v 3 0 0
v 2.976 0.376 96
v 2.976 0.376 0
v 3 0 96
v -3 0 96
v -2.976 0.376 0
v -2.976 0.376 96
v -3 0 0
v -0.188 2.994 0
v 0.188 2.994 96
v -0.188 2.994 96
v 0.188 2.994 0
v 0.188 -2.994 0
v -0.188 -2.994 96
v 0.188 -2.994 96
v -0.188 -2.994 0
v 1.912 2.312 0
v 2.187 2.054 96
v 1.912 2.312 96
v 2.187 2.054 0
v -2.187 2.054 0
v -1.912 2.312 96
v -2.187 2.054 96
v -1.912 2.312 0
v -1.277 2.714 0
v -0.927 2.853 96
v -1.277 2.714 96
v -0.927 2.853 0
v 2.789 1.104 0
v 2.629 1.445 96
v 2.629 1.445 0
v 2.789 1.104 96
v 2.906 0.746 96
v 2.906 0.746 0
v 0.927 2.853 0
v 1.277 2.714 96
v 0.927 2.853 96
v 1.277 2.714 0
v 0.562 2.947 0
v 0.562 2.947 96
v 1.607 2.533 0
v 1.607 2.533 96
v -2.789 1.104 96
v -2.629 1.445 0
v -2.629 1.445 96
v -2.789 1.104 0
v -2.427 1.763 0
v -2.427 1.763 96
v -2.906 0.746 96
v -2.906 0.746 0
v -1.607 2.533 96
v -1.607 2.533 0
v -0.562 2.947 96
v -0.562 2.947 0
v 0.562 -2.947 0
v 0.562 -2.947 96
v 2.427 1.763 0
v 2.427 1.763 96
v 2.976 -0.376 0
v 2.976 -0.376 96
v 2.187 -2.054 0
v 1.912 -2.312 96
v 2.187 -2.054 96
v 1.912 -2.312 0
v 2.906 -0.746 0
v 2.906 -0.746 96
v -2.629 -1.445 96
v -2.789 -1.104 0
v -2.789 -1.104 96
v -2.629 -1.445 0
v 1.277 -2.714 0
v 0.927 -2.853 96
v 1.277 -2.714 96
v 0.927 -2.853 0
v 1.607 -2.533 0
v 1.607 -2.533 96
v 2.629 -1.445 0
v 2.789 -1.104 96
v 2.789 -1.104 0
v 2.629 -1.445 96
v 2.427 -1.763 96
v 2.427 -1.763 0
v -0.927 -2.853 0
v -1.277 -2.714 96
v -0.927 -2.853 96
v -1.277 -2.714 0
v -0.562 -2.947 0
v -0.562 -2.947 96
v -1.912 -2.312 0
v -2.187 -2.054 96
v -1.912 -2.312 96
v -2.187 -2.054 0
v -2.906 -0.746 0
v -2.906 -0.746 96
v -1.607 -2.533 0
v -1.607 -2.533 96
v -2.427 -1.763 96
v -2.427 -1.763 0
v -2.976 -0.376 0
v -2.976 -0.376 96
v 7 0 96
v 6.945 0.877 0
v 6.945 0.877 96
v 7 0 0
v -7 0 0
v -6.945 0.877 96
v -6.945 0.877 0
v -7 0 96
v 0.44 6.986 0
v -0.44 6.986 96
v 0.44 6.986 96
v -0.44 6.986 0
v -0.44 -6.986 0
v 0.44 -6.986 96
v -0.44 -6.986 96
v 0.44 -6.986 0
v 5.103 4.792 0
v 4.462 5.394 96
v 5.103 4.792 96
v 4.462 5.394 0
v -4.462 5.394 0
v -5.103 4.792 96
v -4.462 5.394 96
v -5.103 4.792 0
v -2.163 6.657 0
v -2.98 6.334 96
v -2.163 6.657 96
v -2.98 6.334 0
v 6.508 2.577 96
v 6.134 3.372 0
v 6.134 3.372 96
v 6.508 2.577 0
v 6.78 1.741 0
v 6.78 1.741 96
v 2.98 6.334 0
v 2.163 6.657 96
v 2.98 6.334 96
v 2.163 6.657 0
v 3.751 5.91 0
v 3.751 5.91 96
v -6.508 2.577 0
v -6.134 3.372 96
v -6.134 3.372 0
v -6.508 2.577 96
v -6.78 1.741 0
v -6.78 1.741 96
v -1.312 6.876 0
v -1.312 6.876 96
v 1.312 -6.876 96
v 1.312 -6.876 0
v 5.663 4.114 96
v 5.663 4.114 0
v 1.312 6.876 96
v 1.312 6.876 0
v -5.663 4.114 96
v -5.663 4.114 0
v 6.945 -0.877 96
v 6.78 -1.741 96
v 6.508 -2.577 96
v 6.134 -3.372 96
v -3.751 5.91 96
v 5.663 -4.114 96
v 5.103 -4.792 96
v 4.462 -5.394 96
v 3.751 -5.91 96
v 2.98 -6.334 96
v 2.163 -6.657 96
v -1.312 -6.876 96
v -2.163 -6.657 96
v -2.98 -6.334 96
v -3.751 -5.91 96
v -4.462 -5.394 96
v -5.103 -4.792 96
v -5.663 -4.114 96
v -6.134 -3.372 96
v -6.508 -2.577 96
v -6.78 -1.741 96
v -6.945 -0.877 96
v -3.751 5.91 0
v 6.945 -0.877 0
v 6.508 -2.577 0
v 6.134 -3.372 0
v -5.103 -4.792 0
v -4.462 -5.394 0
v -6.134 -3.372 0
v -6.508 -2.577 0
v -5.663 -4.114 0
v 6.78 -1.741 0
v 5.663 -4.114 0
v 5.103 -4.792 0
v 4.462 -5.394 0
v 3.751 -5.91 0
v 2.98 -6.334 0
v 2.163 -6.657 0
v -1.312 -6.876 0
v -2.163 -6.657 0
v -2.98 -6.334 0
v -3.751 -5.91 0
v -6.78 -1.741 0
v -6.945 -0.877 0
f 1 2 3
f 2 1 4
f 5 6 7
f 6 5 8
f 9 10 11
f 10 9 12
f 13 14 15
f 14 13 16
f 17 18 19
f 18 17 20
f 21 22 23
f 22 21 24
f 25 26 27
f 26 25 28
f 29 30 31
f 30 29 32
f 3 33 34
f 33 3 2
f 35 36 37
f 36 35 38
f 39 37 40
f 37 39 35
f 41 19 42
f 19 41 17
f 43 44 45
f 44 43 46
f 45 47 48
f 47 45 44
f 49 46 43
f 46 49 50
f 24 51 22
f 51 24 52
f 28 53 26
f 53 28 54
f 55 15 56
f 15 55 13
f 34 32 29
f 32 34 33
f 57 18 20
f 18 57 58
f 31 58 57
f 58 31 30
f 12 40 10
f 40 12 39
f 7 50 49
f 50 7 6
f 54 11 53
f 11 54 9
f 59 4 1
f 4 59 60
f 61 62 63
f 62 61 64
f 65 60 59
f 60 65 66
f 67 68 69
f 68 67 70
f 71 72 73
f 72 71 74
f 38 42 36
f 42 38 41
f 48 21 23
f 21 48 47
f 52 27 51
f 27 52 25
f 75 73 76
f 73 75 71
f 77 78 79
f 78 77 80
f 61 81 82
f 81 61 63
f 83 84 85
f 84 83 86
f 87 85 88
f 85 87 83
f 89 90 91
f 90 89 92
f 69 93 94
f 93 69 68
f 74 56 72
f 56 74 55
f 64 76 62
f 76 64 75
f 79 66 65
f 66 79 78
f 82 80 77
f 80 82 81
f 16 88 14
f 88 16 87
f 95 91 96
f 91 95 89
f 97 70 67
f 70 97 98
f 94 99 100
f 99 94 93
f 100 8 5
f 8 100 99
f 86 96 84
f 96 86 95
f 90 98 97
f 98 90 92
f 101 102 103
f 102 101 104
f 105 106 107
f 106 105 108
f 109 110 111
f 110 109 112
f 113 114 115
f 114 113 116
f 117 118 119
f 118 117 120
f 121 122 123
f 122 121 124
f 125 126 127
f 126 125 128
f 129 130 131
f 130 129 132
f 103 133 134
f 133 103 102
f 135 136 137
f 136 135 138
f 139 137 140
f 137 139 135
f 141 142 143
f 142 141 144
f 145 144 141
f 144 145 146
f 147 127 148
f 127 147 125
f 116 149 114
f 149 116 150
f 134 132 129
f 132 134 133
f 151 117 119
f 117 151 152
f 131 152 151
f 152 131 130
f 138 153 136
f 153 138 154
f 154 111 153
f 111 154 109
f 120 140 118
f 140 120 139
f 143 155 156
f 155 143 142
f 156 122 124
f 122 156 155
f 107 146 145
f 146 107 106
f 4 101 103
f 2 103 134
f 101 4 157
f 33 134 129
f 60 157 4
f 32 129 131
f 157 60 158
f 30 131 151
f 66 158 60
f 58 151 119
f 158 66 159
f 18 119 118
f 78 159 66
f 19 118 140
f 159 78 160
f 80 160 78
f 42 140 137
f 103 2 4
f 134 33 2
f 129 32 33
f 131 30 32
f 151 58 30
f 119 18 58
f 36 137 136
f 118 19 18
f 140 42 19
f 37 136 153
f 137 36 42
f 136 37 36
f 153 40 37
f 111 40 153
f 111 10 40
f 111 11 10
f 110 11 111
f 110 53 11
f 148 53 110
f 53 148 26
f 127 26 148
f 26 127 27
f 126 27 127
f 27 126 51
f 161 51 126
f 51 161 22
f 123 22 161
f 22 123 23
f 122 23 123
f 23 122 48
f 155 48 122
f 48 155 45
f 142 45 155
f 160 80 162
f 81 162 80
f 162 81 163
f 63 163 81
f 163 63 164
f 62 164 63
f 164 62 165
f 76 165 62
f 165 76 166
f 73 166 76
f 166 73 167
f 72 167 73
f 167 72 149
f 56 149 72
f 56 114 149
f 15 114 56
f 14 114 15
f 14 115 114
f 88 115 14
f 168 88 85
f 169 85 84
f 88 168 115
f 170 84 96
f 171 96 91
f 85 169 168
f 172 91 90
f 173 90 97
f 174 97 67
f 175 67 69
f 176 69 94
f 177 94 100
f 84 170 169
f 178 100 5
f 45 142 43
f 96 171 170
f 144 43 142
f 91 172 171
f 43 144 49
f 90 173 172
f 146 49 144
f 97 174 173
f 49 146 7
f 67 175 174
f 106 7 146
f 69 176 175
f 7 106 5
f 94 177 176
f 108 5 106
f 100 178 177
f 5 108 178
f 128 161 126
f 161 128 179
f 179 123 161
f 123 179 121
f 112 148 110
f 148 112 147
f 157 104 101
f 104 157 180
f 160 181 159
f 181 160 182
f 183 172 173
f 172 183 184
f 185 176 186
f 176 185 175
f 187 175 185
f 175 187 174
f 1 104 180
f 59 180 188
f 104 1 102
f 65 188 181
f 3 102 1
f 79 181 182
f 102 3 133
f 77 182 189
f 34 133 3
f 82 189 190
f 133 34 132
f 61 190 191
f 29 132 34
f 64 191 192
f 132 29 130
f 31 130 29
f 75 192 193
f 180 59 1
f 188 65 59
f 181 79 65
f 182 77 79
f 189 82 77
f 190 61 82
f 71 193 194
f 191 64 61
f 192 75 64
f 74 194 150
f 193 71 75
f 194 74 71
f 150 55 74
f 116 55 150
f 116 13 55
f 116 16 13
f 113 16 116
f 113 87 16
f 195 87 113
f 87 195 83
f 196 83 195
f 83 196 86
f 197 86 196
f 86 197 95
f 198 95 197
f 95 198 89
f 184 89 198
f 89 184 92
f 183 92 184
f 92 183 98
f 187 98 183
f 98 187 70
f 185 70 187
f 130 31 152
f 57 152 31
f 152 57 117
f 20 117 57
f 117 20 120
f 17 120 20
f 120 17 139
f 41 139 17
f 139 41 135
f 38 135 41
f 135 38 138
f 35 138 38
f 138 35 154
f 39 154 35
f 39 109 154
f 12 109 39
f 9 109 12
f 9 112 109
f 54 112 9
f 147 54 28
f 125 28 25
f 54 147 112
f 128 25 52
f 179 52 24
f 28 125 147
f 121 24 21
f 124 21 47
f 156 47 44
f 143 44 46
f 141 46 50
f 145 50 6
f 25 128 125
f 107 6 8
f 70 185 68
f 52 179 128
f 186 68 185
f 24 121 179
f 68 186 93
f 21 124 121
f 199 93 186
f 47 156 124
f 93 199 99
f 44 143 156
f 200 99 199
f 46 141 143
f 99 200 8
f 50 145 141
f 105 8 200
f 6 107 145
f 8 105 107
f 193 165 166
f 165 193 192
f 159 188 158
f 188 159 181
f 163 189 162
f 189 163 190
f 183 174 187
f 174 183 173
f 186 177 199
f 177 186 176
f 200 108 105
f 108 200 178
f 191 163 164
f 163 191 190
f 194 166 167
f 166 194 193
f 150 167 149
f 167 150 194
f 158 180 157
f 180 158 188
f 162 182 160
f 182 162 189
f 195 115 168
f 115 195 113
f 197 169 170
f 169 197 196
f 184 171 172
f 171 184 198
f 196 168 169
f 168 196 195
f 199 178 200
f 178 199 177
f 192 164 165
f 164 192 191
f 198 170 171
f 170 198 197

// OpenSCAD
$fn = 50;


difference() {
	union() {
		*color(alpha = 1.0000000000, c = "gray") {
			translate(v = [0, 7, 0]) {
				linear_extrude(height = 1) {
					text(font = "Arial:style=Bold", halign = "center", size = 4.5000000000, text = "COMMENT plate main", valign = "center");
				}
			}
		}
		cylinder(h = 96, r = 7.0000000000);
	}
	union() {
		*color(alpha = 1.0000000000, c = "gray") {
			translate(v = [0, 7, 0]) {
				linear_extrude(height = 1) {
					text(font = "Arial:style=Bold", halign = "center", size = 4.5000000000, text = "COMMENT holes main", valign = "center");
				}
			}
		}
		translate(v = [0, 0, -100]) {
			cylinder(h = 200, r = 3.0000000000);
		}
		translate(v = [0, 0, -100]) {
			cylinder(h = 200, r = 1.5000000000);
		}
	}
}
